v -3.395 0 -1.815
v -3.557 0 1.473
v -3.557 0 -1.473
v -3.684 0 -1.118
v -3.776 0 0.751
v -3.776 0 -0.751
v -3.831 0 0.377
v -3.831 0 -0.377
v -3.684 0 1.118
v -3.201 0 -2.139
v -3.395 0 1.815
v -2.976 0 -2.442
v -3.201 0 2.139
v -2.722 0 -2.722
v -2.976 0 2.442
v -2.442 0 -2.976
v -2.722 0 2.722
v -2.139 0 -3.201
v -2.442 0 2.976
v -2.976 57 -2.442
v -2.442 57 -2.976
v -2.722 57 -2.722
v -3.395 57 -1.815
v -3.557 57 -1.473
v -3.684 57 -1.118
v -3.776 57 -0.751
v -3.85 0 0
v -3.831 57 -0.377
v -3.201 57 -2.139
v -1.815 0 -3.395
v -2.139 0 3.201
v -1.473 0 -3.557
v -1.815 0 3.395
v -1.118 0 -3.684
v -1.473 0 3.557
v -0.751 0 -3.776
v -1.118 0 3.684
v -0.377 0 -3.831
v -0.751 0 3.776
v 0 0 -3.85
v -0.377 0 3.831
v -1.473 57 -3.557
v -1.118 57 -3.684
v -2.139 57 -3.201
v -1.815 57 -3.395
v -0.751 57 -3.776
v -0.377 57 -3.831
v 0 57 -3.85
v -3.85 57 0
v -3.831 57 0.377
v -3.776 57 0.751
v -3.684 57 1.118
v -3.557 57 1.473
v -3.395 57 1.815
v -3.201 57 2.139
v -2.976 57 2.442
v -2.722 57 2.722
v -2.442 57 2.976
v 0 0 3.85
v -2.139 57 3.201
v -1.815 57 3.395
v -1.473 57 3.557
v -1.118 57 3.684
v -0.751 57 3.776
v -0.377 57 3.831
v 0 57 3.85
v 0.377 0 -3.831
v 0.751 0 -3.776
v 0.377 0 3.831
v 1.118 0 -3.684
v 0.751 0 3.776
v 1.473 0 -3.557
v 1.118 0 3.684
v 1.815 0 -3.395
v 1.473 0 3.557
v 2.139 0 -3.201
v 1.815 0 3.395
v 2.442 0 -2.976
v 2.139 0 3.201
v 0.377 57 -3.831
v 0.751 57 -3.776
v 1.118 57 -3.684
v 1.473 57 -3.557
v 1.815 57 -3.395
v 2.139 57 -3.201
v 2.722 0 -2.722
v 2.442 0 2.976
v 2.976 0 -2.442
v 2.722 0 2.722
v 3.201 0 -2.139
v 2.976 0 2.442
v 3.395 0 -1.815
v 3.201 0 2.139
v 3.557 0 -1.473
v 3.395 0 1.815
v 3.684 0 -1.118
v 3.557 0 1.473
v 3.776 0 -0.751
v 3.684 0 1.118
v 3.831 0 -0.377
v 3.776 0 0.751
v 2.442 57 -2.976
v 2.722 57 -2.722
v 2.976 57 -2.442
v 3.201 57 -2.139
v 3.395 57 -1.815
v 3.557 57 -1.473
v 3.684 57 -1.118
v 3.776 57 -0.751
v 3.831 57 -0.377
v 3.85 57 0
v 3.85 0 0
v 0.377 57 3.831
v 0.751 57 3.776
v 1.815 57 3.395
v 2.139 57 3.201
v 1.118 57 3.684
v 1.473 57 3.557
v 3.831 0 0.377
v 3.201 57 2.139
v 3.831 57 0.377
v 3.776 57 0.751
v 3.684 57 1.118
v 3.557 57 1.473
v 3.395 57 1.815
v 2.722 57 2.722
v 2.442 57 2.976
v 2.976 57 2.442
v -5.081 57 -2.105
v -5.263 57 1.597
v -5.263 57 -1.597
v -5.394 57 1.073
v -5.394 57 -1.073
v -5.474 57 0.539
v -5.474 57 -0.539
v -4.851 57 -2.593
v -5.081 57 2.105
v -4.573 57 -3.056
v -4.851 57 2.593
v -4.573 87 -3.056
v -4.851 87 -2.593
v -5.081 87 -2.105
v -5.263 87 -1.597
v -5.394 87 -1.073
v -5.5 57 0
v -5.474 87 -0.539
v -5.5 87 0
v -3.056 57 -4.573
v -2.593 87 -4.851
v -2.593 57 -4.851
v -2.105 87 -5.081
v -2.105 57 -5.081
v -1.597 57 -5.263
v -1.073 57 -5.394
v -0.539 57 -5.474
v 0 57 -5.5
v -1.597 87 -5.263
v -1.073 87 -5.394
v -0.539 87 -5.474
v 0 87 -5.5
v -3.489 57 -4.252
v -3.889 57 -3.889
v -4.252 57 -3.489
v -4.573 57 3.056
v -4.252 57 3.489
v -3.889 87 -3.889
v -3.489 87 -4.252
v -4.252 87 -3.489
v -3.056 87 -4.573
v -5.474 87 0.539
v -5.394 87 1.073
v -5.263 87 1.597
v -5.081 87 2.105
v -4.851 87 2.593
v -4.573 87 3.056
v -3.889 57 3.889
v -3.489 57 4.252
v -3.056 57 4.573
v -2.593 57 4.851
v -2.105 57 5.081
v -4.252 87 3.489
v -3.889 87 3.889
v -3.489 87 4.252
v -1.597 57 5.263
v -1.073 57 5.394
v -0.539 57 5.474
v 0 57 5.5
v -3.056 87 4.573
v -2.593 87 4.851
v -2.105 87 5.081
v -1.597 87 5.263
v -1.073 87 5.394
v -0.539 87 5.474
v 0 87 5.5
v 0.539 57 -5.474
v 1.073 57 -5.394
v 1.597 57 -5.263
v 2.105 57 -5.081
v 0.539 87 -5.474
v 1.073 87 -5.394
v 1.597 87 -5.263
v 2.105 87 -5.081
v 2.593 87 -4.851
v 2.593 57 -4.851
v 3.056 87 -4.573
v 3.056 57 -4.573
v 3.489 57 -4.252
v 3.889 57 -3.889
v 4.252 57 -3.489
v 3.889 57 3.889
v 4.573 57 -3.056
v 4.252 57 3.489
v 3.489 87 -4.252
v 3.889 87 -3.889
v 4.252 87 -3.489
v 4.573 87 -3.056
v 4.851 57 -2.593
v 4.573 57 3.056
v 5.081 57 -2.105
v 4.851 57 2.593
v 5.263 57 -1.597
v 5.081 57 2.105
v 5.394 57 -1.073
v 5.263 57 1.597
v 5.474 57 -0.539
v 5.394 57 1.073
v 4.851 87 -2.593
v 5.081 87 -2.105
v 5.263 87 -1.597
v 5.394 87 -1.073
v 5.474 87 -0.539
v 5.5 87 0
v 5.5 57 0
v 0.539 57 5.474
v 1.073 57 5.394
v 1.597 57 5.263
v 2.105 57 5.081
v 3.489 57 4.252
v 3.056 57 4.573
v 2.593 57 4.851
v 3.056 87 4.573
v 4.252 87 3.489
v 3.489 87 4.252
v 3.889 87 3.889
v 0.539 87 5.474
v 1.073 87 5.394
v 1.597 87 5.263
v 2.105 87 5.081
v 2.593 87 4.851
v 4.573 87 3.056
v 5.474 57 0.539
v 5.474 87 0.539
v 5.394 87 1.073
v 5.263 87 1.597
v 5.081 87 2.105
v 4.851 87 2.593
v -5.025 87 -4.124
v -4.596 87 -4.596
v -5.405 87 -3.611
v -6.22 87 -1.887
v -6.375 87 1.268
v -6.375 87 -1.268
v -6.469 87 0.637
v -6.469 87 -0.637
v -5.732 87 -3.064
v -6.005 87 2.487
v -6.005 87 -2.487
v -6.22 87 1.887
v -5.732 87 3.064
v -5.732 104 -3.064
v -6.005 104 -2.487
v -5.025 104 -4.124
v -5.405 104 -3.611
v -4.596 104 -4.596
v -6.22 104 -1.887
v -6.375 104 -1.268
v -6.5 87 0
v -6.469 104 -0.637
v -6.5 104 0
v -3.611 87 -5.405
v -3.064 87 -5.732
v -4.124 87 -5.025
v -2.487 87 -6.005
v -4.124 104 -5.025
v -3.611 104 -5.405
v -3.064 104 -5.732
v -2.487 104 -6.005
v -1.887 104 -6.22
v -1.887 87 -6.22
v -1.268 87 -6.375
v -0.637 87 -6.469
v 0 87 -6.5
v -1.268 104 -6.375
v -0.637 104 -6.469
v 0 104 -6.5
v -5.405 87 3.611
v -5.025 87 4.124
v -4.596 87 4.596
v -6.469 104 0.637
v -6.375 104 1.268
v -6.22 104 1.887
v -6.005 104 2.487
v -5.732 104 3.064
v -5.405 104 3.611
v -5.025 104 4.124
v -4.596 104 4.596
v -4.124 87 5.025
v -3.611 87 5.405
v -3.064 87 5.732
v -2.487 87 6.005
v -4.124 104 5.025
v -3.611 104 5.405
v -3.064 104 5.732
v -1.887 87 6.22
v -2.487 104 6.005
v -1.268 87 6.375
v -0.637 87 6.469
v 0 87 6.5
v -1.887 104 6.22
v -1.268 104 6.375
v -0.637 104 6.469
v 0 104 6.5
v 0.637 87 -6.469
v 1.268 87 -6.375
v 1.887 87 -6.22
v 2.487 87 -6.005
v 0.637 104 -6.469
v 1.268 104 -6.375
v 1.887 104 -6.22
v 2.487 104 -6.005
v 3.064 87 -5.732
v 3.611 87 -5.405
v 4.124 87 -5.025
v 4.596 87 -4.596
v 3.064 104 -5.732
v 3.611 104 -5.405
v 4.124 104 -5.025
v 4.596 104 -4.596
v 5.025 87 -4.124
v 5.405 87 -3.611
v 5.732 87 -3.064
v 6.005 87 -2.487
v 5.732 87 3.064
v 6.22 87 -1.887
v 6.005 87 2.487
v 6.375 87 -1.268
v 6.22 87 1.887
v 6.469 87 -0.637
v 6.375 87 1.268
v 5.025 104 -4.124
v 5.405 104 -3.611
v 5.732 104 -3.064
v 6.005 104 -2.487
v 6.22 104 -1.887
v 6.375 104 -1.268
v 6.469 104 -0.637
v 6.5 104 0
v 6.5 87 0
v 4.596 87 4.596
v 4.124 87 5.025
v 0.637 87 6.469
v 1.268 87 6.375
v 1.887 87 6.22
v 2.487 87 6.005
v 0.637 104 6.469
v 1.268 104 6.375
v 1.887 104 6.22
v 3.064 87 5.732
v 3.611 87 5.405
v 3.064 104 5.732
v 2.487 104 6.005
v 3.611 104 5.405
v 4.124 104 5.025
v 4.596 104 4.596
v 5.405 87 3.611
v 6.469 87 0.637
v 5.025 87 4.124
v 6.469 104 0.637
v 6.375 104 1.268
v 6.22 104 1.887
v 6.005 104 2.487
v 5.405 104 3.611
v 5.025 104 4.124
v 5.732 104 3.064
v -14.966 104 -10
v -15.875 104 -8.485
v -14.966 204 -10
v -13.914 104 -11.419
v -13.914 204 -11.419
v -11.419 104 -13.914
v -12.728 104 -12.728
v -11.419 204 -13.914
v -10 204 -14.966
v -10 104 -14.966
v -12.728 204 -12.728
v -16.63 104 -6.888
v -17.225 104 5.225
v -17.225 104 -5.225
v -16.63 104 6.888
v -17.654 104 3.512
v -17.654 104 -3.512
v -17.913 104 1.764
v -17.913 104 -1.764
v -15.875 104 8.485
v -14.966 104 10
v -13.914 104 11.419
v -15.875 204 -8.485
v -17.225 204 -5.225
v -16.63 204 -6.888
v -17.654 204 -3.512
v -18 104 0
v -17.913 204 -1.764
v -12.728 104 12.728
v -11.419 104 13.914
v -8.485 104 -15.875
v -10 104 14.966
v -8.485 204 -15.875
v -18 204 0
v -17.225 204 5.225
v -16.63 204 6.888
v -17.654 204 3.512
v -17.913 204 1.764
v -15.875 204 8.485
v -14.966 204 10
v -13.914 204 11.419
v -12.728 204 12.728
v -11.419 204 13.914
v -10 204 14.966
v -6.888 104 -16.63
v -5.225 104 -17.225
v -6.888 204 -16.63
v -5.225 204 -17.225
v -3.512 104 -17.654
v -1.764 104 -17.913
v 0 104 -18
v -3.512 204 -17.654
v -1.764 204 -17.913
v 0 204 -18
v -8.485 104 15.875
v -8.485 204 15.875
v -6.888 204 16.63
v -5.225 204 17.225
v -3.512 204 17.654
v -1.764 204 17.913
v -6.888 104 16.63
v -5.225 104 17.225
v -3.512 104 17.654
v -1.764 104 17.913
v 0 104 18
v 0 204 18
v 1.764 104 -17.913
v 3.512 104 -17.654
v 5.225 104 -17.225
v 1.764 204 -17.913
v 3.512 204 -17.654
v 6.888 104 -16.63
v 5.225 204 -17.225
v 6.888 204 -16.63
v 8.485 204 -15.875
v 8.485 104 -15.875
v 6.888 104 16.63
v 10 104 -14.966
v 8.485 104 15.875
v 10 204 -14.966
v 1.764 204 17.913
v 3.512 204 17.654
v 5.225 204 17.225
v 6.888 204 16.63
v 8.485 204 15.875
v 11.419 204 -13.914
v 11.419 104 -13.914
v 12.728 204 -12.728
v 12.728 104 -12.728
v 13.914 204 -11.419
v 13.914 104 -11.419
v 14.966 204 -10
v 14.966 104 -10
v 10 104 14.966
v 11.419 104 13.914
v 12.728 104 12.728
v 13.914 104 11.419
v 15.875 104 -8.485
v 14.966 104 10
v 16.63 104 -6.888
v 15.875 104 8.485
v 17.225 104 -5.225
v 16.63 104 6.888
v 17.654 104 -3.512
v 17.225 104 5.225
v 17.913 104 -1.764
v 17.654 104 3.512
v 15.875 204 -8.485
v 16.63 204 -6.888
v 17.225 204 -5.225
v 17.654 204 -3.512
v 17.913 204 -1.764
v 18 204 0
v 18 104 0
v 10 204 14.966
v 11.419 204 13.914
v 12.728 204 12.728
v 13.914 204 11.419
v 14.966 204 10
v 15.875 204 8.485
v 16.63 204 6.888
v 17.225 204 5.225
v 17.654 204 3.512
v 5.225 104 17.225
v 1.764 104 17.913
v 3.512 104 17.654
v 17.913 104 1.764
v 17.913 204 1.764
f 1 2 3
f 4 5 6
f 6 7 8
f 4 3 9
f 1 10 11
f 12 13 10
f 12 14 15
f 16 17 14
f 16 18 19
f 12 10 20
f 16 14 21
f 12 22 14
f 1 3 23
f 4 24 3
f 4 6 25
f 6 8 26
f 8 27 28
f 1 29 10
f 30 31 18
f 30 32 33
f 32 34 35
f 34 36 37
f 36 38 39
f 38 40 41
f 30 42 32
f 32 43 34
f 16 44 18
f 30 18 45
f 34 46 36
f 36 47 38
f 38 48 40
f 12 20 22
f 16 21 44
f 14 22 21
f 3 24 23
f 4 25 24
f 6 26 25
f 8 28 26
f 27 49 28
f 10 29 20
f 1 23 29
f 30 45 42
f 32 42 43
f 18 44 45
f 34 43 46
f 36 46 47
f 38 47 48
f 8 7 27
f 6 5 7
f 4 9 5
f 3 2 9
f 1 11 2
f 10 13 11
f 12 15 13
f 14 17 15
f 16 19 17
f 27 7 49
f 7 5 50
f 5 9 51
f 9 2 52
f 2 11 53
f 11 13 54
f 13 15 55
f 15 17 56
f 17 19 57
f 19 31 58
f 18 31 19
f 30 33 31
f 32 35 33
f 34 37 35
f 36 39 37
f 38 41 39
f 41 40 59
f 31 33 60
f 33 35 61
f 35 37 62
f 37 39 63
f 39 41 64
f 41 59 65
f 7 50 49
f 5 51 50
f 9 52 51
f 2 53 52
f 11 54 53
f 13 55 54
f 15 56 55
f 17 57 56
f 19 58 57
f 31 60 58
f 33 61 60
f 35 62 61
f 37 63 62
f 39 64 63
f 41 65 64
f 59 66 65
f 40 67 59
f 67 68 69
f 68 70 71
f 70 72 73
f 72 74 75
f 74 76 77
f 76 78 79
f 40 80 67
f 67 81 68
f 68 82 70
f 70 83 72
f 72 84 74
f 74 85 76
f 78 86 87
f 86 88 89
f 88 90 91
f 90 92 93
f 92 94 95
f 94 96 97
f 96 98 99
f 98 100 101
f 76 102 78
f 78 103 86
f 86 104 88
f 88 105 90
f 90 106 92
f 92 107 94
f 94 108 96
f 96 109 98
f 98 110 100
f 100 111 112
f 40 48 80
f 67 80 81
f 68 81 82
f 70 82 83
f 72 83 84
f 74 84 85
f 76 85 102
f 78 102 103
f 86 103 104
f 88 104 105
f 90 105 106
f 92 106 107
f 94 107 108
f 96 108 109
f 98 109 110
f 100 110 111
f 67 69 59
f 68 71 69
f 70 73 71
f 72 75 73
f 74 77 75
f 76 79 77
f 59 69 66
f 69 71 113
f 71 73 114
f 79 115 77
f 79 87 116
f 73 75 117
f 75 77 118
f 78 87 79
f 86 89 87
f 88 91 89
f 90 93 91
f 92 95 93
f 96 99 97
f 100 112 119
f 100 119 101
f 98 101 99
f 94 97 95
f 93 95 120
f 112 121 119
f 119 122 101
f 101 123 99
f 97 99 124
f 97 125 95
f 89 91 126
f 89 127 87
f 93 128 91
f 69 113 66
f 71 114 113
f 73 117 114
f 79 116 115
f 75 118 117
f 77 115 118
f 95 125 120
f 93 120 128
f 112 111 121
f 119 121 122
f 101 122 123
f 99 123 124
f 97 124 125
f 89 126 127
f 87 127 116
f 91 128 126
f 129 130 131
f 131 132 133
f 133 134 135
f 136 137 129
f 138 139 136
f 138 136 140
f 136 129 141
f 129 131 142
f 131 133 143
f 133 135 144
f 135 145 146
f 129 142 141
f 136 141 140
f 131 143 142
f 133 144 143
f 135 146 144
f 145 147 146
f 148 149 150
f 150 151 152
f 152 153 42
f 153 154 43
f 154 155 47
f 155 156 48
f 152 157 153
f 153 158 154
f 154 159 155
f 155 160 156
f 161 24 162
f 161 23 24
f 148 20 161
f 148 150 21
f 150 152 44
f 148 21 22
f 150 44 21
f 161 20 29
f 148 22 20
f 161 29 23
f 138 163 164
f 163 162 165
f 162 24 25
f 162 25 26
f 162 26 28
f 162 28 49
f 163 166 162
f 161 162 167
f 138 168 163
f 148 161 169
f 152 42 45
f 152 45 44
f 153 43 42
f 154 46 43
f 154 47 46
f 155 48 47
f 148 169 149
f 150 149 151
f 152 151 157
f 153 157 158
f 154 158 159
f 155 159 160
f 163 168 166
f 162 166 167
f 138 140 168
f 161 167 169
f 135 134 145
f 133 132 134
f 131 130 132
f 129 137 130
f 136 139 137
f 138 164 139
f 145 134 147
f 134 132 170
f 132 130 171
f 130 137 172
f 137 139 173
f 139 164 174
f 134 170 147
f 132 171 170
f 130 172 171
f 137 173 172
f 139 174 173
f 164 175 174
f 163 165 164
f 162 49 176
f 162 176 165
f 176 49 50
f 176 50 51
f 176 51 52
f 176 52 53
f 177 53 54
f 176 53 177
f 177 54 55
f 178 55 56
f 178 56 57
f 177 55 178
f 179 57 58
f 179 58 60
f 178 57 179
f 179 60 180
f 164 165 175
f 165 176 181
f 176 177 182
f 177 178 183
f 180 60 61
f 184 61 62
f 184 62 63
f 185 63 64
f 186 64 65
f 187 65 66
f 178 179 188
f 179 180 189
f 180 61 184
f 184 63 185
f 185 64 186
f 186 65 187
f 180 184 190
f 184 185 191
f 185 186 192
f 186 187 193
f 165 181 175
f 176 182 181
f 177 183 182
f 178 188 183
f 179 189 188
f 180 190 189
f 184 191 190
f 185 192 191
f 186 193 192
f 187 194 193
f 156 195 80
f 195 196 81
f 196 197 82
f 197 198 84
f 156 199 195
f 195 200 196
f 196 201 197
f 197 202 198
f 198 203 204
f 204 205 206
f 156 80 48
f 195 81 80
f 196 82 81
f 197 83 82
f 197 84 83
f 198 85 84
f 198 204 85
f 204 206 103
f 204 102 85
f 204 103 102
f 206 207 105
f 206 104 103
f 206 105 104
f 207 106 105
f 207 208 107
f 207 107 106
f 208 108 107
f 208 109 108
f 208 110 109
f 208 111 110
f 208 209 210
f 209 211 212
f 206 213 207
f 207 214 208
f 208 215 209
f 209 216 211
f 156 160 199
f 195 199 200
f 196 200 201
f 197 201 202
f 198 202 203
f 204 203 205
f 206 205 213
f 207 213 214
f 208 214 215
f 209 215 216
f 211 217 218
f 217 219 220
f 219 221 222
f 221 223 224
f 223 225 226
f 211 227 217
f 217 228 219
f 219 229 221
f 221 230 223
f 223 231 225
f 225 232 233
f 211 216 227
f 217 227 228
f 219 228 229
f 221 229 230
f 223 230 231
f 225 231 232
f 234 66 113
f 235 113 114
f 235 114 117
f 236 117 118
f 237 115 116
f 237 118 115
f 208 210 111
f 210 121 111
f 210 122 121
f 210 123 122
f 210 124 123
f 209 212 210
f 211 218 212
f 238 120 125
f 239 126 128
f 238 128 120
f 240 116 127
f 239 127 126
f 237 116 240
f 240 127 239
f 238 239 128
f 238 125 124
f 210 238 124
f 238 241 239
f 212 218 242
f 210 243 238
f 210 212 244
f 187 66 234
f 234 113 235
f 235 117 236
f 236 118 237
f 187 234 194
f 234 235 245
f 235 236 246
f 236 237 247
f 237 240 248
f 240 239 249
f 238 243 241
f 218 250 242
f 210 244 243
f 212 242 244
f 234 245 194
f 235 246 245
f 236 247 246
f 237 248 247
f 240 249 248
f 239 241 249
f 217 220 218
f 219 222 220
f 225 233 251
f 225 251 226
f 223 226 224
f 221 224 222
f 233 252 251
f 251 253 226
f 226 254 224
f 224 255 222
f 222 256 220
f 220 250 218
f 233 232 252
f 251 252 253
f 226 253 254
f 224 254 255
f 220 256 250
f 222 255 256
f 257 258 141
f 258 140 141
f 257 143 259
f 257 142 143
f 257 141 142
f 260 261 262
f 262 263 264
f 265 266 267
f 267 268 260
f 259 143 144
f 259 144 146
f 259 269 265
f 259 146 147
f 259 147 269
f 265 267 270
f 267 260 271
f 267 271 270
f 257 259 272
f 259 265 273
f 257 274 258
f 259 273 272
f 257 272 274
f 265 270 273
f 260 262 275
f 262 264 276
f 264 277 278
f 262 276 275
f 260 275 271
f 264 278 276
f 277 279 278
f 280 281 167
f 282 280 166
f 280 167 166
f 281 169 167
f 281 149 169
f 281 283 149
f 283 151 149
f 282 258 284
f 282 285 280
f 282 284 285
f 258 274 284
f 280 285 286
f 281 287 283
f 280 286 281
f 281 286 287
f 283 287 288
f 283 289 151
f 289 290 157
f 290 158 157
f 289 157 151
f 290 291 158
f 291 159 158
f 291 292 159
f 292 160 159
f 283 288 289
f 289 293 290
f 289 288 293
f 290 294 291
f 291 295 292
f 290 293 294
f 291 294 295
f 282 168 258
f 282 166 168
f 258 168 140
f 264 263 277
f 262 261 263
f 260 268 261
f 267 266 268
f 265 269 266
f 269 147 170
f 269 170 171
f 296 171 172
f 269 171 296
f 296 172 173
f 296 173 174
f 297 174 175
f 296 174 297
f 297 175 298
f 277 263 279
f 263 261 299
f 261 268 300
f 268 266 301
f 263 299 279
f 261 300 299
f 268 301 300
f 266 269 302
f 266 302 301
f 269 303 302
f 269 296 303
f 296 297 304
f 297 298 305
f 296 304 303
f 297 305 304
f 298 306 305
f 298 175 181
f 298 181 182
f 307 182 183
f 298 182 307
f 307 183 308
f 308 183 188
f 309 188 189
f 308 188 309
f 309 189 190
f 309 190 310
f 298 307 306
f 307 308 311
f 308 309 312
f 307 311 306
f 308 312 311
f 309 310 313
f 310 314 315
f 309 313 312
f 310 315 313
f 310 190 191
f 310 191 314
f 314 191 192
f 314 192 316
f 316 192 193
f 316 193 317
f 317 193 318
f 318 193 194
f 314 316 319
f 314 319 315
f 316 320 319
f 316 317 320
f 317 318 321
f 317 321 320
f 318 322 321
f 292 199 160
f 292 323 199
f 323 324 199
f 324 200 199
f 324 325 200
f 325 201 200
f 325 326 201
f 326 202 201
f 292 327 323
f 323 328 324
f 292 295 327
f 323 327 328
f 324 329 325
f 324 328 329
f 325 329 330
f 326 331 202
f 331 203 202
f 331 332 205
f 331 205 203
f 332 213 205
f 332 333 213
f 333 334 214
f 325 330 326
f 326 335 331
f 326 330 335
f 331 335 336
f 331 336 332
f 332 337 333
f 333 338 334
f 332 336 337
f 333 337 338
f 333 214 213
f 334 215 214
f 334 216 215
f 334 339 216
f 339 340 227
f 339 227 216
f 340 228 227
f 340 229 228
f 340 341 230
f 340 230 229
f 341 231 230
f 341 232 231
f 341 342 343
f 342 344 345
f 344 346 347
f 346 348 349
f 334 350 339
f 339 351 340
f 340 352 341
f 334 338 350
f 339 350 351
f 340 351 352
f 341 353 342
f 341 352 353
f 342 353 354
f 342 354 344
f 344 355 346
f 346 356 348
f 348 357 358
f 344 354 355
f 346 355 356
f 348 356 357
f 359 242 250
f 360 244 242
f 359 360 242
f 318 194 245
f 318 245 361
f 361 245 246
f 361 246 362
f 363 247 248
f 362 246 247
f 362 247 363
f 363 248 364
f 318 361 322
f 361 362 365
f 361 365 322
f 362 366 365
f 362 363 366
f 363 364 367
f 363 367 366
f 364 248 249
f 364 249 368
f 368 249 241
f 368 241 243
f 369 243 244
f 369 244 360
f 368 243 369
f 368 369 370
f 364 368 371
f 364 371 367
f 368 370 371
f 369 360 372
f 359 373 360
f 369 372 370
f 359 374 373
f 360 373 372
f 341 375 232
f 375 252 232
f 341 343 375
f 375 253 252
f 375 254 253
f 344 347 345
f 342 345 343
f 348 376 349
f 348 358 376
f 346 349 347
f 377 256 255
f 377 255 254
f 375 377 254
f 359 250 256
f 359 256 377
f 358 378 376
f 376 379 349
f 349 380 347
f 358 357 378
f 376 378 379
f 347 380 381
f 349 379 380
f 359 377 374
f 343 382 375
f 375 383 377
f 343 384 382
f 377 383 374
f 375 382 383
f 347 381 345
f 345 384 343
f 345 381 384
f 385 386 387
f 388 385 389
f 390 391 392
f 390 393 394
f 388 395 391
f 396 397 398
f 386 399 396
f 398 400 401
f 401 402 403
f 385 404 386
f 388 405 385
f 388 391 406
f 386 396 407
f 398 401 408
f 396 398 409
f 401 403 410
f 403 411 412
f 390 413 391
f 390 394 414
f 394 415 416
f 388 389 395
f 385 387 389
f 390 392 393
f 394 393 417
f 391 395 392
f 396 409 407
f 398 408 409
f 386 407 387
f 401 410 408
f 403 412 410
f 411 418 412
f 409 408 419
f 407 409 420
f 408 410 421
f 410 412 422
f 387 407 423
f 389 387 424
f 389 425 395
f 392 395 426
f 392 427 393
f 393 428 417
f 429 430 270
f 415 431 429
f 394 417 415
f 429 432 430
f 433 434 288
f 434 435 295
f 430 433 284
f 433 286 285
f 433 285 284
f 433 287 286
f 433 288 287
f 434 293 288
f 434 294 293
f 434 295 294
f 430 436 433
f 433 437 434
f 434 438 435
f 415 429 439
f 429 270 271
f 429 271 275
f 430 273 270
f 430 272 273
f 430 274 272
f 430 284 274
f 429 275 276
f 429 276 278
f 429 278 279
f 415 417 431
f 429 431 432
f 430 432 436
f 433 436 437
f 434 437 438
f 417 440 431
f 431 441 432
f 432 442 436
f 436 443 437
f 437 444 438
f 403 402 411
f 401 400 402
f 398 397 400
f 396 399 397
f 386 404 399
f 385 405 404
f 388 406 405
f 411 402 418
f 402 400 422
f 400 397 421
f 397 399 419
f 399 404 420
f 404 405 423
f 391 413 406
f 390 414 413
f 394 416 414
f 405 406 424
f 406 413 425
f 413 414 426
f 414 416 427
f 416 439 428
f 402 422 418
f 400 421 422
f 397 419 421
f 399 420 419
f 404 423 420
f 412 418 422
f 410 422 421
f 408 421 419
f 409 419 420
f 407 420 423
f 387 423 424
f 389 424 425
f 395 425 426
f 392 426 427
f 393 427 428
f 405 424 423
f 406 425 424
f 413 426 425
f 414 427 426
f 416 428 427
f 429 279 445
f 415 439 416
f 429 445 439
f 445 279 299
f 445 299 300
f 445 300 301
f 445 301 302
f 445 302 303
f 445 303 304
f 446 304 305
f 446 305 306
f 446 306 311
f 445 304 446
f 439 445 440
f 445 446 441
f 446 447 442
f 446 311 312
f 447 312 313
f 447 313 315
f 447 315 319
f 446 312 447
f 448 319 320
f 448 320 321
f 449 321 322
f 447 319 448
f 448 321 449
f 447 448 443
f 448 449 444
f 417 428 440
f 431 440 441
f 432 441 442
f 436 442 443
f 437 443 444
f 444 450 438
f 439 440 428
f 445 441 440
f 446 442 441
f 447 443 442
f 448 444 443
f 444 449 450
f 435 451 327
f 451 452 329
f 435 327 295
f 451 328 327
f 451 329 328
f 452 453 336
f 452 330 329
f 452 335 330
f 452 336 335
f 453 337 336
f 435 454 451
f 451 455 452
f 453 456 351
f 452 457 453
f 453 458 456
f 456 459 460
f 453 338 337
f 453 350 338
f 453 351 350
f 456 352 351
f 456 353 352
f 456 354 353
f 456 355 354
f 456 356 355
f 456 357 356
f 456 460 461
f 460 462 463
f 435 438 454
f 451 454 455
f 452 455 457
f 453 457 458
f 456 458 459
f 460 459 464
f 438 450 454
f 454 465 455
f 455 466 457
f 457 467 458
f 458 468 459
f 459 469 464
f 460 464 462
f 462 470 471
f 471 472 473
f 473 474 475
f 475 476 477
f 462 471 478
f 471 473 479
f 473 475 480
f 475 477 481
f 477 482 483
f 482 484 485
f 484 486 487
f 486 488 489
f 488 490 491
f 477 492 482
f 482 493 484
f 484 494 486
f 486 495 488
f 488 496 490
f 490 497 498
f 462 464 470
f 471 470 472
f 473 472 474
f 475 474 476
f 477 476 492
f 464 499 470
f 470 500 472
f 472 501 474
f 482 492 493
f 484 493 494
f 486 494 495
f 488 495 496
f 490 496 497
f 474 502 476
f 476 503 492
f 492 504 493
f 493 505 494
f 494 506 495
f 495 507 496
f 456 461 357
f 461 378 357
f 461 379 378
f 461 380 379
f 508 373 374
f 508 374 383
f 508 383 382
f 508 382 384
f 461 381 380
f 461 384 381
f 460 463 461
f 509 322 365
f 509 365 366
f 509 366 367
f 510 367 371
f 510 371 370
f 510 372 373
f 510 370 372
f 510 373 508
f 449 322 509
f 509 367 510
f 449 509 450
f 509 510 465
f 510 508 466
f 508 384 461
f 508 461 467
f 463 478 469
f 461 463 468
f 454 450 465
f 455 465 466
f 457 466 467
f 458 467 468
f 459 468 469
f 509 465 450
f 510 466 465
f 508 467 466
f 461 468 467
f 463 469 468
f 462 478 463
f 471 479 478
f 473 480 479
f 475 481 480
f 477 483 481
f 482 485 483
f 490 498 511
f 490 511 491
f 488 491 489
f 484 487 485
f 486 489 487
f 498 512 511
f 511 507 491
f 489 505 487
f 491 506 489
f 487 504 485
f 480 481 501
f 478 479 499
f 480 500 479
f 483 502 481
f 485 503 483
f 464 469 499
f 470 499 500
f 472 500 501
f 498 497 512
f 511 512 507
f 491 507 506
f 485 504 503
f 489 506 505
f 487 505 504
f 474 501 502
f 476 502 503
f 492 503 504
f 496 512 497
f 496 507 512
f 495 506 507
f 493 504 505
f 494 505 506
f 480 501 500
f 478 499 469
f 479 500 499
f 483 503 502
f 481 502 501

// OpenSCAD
// Quikpik multi-driver, 200 mm
// Geometry follows the holder clearance profile. Its dimensions describe the pocket used in the source design. Physical tool dimensions and fit have yet to be measured.
// Units: mm
$fn = 64;
union() {
    translate([0, 0, 0]) rotate([-90, 0, 0])
        cylinder(h=57, r1=3.85, r2=3.85, $fn=64);
    translate([0, 57, 0]) rotate([-90, 0, 0])
        cylinder(h=30, r1=5.5, r2=5.5, $fn=64);
    translate([0, 87, 0]) rotate([-90, 0, 0])
        cylinder(h=17, r1=6.5, r2=6.5, $fn=64);
    translate([0, 104, 0]) rotate([-90, 0, 0])
        cylinder(h=100, r1=18, r2=18, $fn=64);
}
